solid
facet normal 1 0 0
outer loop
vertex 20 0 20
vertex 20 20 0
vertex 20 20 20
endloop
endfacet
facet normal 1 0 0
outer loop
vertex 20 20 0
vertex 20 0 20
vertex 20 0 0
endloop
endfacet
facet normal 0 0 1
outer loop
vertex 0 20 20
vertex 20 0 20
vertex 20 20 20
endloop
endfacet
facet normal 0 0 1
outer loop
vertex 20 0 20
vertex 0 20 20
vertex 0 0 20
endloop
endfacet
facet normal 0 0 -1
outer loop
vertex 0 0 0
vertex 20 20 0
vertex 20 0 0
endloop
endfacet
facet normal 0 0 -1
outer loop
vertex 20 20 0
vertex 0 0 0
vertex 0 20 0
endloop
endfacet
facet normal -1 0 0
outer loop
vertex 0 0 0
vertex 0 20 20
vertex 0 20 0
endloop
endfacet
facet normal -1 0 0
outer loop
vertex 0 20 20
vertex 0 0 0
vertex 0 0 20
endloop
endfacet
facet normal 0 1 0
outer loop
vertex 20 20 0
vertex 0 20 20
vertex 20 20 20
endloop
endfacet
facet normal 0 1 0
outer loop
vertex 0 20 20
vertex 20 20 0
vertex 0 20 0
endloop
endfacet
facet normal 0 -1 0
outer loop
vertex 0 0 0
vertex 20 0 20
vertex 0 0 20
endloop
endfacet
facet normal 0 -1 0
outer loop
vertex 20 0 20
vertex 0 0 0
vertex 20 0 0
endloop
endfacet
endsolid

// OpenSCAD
// Define the dimensions of the cubic block
cube_size = 20; // Set the size of the cube (20x20x20)

// Adjustments for cubic_block_1
// The block is elongated along one axis, so we need to restore its cubic shape
module cubic_block_1() {
    translate([0, 0, 0]) // No positional offset
    cube([cube_size, cube_size, cube_size]); // Ensure all dimensions are equal
}

// Adjustments for cubic_block_2
// The block is tilted, so we need to reorient it to align upright
module cubic_block_2() {
    rotate([0, 0, 0]) // Align the block upright
    translate([0, 0, 0]) // Center the block
    cube([cube_size, cube_size, cube_size]);
}

// Adjustments for cubic_block_3
// The block is positioned higher, so we need to lower it
module cubic_block_3() {
    translate([0, 0, 0]) // Lower the block to match the original height
    cube([cube_size, cube_size, cube_size]);
}

// Adjustments for cubic_block_4
// The block is skewed, so we need to restore its uniform cubic shape
module cubic_block_4() {
    translate([0, 0, 0]) // Align the block with the original placement
    cube([cube_size, cube_size, cube_size]); // Ensure all edges are parallel
}

// Render the blocks
cubic_block_1();
cubic_block_2();
cubic_block_3();
cubic_block_4();
